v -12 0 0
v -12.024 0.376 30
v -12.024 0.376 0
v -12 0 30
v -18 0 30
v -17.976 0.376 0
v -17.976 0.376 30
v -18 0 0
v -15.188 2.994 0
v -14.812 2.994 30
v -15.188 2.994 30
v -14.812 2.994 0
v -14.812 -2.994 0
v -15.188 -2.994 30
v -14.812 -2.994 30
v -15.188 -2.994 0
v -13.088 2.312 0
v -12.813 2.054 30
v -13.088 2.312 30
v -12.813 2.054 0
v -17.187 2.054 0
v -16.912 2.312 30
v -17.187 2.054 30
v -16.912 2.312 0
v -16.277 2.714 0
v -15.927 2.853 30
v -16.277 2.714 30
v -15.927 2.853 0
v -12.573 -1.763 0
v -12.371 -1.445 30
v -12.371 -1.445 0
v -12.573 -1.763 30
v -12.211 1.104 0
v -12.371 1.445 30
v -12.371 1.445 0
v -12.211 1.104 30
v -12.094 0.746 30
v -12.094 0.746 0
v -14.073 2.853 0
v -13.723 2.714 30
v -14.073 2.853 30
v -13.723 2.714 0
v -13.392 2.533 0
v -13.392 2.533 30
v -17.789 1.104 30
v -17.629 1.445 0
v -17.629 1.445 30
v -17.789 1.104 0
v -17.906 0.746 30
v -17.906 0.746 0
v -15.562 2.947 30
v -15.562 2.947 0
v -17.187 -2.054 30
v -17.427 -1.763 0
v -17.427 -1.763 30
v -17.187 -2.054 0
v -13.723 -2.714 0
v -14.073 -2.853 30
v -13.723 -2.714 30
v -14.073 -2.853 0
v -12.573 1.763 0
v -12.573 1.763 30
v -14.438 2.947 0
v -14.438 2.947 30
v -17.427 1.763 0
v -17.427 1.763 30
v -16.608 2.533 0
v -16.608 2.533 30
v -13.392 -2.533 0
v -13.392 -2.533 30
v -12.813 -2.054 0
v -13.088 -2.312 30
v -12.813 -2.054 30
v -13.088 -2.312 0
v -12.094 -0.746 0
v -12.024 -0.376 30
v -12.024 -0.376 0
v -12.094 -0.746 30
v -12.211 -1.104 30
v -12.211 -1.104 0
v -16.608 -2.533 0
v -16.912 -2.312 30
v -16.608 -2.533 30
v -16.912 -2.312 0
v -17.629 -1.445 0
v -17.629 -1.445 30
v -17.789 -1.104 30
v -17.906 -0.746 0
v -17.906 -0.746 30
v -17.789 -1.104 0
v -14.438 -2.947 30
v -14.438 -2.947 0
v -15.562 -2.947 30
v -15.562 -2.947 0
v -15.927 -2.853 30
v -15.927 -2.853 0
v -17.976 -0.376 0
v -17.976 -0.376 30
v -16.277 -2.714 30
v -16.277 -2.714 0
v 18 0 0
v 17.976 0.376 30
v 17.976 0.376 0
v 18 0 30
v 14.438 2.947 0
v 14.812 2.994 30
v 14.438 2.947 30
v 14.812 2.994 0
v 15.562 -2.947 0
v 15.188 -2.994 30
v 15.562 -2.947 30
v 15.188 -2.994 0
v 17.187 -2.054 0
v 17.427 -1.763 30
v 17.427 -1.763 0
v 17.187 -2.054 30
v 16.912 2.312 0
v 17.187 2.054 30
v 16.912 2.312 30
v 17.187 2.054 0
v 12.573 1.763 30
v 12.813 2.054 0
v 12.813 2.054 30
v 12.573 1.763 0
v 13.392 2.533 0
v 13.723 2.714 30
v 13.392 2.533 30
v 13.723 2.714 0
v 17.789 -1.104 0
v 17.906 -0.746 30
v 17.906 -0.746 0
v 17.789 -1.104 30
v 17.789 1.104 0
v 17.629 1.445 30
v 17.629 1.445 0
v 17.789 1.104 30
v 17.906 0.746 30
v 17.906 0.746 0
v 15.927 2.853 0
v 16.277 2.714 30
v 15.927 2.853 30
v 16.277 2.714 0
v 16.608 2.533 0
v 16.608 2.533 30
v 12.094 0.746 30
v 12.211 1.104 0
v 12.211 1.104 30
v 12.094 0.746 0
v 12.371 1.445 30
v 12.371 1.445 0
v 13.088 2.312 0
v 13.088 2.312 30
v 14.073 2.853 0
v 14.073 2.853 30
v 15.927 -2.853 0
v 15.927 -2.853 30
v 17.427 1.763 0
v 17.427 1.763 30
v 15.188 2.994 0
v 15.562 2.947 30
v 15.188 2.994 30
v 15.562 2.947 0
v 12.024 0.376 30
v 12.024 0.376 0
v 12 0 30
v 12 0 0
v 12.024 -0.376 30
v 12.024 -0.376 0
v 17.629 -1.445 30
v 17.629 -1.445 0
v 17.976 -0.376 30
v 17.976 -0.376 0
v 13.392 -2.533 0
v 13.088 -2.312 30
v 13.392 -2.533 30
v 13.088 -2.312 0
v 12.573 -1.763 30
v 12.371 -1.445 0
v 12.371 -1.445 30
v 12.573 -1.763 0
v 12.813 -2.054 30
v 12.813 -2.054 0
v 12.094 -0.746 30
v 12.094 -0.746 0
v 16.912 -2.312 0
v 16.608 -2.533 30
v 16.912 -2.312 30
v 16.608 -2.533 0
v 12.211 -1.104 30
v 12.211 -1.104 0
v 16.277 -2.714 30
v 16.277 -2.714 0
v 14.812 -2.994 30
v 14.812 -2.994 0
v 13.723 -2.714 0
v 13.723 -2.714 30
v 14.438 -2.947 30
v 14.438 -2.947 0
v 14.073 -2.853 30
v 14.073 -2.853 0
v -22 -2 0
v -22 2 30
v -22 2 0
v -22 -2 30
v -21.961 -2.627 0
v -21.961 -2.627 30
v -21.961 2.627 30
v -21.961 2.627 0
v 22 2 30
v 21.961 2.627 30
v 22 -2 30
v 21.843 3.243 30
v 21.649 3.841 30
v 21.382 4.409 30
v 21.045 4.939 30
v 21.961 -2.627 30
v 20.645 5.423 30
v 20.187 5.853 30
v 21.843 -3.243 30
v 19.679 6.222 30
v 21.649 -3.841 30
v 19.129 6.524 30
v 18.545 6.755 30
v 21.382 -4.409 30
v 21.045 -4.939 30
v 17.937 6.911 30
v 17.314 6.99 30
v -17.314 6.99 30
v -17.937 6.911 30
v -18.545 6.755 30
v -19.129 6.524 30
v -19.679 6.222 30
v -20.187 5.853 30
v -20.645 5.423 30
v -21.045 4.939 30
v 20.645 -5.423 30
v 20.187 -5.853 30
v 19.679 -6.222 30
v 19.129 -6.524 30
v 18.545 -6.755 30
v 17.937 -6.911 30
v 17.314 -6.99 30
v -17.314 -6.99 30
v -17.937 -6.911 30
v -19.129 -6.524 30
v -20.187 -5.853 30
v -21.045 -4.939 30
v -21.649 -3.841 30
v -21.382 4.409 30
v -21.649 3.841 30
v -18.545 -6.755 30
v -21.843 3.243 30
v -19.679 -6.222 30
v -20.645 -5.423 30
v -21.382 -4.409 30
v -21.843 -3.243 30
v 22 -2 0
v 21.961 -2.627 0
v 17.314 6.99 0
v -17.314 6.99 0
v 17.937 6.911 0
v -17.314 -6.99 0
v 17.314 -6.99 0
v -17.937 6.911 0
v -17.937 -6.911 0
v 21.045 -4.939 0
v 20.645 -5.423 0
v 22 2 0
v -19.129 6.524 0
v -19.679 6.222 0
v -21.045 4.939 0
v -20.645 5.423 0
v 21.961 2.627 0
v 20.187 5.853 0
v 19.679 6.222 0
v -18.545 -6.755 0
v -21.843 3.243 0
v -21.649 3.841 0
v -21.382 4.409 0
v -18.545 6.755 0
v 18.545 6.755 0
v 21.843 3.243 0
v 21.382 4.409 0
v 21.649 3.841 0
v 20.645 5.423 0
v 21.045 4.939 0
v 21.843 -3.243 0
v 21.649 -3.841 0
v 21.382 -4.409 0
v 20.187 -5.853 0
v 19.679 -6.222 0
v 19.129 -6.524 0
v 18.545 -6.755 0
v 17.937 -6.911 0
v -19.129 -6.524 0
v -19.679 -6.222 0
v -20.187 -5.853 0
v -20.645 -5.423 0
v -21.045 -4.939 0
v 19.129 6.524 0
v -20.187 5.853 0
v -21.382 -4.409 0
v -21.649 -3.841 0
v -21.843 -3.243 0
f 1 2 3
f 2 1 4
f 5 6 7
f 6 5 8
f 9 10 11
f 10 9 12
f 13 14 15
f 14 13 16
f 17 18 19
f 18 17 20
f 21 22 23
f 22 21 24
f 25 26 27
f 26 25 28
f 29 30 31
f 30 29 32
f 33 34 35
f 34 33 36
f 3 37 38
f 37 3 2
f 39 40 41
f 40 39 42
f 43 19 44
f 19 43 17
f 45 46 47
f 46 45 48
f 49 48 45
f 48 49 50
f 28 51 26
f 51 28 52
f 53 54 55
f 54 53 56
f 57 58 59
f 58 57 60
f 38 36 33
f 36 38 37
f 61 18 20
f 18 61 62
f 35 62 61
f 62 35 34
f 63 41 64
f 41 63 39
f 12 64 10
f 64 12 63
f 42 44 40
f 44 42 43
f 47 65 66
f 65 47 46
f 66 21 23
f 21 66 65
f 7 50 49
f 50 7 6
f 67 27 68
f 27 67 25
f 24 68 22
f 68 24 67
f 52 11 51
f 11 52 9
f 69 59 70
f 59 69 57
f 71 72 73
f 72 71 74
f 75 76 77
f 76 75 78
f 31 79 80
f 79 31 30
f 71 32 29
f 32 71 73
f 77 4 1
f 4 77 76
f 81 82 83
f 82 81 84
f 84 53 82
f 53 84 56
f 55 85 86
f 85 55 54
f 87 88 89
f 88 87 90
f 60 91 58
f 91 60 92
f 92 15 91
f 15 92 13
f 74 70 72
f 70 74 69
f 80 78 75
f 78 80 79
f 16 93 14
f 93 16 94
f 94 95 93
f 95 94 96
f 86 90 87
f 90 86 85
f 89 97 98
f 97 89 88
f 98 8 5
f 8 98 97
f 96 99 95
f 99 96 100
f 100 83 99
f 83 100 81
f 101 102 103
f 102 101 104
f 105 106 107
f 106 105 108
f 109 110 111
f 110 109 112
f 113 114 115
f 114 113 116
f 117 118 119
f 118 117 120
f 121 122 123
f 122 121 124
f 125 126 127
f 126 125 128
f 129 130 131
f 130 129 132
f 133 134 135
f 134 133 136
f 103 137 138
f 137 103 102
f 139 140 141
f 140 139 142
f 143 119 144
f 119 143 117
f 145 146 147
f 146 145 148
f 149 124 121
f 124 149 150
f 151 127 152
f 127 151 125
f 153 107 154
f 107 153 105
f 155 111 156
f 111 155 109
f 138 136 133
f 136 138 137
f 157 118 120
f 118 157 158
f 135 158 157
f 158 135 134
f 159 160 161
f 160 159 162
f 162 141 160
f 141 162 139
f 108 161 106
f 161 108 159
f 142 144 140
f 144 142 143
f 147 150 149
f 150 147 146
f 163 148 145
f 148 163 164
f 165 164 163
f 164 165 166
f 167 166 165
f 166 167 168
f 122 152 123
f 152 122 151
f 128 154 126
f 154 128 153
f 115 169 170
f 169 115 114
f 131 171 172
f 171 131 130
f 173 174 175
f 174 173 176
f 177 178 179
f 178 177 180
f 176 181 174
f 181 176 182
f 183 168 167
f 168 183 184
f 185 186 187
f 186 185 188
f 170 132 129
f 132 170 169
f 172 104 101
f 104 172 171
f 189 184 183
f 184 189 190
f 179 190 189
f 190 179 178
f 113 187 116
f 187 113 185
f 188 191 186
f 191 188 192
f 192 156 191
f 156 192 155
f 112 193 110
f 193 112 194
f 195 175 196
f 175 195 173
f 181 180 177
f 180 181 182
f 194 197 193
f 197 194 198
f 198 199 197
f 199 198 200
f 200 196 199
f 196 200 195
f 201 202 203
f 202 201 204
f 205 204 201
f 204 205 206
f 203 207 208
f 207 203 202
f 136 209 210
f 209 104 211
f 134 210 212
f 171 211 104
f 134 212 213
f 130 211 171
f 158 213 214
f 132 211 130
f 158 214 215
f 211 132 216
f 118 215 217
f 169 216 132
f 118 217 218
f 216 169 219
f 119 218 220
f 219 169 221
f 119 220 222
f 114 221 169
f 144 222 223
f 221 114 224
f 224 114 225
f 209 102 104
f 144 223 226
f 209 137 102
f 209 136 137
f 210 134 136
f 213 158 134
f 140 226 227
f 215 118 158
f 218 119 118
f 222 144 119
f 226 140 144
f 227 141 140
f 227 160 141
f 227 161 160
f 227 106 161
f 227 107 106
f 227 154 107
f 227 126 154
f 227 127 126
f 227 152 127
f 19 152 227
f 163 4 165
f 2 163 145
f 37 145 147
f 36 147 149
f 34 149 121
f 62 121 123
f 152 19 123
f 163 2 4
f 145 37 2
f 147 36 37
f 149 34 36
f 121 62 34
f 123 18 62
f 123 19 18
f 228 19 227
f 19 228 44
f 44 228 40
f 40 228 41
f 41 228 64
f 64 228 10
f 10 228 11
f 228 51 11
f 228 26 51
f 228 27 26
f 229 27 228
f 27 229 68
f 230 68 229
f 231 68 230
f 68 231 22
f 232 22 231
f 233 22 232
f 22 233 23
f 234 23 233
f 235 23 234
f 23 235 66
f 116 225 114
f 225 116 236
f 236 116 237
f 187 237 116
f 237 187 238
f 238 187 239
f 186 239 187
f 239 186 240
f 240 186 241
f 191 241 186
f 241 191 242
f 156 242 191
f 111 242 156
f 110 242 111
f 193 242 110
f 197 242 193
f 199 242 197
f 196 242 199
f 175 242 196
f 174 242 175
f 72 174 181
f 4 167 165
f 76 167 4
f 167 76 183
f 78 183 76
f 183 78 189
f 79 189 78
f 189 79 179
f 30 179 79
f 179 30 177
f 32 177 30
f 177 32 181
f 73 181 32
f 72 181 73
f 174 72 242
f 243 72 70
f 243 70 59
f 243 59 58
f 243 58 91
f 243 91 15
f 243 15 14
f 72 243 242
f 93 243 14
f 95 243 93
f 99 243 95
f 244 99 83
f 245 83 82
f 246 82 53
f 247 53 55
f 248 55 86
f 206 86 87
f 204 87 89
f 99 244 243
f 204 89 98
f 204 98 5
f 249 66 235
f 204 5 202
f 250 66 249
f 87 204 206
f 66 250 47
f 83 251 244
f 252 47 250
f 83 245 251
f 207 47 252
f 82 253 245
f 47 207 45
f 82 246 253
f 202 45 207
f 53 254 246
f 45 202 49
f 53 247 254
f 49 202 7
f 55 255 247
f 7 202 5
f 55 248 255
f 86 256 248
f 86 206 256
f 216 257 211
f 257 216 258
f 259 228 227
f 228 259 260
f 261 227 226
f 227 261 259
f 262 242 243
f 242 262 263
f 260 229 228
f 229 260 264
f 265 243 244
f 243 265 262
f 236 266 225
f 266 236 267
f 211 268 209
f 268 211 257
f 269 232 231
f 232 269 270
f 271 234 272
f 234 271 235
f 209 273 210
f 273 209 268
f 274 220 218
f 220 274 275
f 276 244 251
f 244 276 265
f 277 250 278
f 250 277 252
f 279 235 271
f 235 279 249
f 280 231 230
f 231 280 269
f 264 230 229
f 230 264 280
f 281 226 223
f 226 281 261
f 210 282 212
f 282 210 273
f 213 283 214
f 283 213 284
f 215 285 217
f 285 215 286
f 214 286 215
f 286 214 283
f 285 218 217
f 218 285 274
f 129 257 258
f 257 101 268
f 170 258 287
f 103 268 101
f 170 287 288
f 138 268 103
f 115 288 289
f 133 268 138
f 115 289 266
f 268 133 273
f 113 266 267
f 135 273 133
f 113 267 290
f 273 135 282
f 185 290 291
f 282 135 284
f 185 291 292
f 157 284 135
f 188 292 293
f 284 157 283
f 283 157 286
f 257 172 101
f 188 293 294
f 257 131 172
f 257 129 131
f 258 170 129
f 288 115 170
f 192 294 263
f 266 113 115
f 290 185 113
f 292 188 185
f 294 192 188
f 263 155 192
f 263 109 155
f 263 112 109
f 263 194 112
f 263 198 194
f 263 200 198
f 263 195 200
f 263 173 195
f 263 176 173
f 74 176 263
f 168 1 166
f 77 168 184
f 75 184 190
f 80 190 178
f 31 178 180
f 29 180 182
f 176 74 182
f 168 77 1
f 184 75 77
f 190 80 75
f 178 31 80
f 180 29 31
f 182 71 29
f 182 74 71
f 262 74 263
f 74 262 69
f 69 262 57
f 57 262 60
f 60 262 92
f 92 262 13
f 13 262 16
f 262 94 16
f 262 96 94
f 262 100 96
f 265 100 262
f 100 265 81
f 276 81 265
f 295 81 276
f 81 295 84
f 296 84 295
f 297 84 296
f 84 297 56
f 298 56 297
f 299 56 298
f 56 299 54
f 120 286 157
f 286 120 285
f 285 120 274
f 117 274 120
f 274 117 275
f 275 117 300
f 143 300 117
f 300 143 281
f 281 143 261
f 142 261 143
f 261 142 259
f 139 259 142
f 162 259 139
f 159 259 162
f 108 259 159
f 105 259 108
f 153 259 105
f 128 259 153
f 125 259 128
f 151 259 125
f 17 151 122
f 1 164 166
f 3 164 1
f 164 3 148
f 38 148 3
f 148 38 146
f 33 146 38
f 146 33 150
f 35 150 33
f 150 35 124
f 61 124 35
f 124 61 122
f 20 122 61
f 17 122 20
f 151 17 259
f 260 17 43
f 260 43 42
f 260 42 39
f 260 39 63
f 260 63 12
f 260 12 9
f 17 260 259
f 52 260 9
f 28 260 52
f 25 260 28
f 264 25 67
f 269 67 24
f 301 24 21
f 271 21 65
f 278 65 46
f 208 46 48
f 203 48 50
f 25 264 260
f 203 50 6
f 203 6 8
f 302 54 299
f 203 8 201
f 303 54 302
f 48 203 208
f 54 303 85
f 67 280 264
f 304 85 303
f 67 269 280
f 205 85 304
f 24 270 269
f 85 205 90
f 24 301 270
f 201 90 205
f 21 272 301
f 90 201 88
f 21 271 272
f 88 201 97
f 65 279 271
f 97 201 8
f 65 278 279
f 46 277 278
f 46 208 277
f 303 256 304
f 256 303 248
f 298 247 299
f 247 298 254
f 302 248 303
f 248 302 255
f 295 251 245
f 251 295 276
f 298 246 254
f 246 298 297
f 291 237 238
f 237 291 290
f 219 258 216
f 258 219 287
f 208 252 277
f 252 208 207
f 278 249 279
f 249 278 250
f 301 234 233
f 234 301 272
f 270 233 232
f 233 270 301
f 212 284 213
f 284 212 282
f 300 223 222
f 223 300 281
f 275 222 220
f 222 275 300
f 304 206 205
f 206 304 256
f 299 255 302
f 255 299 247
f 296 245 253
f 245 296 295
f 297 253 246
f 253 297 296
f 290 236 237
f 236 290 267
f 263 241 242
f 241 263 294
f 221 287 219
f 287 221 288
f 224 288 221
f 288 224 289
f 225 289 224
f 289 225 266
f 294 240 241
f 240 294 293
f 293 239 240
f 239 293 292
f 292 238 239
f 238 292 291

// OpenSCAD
$fn = 50;


difference() {
	union() {
		hull() {
			translate(v = [-17.0000000000, 2.0000000000, 0]) {
				cylinder(h = 30, r = 5);
			}
			translate(v = [17.0000000000, 2.0000000000, 0]) {
				cylinder(h = 30, r = 5);
			}
			translate(v = [-17.0000000000, -2.0000000000, 0]) {
				cylinder(h = 30, r = 5);
			}
			translate(v = [17.0000000000, -2.0000000000, 0]) {
				cylinder(h = 30, r = 5);
			}
		}
	}
	union() {
		translate(v = [-15.0000000000, 0.0000000000, -100.0000000000]) {
			cylinder(h = 200, r = 3.0000000000);
		}
		translate(v = [-15.0000000000, 0.0000000000, -100.0000000000]) {
			cylinder(h = 200, r = 3.0000000000);
		}
		translate(v = [15.0000000000, 0.0000000000, -100.0000000000]) {
			cylinder(h = 200, r = 3.0000000000);
		}
		translate(v = [15.0000000000, 0.0000000000, -100.0000000000]) {
			cylinder(h = 200, r = 3.0000000000);
		}
	}
}
